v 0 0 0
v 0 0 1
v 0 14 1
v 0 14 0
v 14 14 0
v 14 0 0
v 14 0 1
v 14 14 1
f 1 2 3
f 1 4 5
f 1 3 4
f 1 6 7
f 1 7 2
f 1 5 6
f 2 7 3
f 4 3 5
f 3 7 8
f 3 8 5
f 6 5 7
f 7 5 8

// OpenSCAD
/* Warning, this is a very basic generator with a lot of approximation 
input data : [TQFP, X9B, 14x14x1.0mm, 128, , A, C04-21321A]
generated by com.zoubworld.electronics.cad.model3d.Basic
Date : Sun Feb 15 10:50:49 CET 2026
*/

//body
color("black")
translate([0,0,0])
cube([14.0,14.0,1.0], center=false);
